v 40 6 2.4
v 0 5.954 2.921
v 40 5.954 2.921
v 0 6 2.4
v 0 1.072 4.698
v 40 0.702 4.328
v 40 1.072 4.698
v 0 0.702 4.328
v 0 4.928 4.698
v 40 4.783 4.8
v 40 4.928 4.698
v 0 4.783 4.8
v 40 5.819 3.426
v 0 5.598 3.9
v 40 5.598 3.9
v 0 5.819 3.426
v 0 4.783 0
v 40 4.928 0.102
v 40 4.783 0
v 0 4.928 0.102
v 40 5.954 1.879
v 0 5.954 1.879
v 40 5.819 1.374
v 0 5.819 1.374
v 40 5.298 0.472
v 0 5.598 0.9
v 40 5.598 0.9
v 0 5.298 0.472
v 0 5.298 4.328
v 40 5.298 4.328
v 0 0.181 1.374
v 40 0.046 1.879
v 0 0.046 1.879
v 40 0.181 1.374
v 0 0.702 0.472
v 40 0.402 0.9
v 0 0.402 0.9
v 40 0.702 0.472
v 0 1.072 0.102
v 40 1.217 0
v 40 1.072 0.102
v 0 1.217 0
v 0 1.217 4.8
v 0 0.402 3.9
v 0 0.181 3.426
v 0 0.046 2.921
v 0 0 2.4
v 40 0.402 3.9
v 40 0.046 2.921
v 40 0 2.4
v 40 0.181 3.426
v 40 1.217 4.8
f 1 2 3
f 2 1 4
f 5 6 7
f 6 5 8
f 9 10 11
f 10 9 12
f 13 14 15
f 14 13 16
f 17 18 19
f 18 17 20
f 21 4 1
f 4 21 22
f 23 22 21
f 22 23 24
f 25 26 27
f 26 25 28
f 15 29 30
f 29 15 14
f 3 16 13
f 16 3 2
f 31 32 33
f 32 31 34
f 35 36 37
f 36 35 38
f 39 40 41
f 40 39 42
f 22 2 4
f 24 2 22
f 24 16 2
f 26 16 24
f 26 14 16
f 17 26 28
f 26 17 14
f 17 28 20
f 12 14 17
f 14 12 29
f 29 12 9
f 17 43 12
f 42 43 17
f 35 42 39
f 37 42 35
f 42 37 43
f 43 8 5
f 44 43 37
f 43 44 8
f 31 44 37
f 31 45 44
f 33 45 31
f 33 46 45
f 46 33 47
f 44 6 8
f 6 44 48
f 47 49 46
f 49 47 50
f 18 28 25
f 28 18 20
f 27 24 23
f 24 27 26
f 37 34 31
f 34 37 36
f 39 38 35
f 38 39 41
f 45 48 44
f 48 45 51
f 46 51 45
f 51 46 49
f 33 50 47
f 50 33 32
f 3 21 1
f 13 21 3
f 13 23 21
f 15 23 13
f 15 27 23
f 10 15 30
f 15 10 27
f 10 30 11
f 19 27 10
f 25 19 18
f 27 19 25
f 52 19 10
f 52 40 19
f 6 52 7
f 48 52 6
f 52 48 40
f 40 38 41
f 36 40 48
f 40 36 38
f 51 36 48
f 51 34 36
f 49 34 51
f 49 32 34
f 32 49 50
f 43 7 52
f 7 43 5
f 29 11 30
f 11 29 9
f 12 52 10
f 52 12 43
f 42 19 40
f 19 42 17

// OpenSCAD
pegLength = 40;
pegDiameter = 6;
flatDepth = 0.6;
$fn = 36;

intersection() {
    translate([0, pegDiameter/2, pegDiameter/2-flatDepth])
        rotate([0, 90, 0])
            cylinder(d = pegDiameter, h = pegLength);
    cube([pegLength, pegDiameter, pegDiameter-2*flatDepth]);
}
